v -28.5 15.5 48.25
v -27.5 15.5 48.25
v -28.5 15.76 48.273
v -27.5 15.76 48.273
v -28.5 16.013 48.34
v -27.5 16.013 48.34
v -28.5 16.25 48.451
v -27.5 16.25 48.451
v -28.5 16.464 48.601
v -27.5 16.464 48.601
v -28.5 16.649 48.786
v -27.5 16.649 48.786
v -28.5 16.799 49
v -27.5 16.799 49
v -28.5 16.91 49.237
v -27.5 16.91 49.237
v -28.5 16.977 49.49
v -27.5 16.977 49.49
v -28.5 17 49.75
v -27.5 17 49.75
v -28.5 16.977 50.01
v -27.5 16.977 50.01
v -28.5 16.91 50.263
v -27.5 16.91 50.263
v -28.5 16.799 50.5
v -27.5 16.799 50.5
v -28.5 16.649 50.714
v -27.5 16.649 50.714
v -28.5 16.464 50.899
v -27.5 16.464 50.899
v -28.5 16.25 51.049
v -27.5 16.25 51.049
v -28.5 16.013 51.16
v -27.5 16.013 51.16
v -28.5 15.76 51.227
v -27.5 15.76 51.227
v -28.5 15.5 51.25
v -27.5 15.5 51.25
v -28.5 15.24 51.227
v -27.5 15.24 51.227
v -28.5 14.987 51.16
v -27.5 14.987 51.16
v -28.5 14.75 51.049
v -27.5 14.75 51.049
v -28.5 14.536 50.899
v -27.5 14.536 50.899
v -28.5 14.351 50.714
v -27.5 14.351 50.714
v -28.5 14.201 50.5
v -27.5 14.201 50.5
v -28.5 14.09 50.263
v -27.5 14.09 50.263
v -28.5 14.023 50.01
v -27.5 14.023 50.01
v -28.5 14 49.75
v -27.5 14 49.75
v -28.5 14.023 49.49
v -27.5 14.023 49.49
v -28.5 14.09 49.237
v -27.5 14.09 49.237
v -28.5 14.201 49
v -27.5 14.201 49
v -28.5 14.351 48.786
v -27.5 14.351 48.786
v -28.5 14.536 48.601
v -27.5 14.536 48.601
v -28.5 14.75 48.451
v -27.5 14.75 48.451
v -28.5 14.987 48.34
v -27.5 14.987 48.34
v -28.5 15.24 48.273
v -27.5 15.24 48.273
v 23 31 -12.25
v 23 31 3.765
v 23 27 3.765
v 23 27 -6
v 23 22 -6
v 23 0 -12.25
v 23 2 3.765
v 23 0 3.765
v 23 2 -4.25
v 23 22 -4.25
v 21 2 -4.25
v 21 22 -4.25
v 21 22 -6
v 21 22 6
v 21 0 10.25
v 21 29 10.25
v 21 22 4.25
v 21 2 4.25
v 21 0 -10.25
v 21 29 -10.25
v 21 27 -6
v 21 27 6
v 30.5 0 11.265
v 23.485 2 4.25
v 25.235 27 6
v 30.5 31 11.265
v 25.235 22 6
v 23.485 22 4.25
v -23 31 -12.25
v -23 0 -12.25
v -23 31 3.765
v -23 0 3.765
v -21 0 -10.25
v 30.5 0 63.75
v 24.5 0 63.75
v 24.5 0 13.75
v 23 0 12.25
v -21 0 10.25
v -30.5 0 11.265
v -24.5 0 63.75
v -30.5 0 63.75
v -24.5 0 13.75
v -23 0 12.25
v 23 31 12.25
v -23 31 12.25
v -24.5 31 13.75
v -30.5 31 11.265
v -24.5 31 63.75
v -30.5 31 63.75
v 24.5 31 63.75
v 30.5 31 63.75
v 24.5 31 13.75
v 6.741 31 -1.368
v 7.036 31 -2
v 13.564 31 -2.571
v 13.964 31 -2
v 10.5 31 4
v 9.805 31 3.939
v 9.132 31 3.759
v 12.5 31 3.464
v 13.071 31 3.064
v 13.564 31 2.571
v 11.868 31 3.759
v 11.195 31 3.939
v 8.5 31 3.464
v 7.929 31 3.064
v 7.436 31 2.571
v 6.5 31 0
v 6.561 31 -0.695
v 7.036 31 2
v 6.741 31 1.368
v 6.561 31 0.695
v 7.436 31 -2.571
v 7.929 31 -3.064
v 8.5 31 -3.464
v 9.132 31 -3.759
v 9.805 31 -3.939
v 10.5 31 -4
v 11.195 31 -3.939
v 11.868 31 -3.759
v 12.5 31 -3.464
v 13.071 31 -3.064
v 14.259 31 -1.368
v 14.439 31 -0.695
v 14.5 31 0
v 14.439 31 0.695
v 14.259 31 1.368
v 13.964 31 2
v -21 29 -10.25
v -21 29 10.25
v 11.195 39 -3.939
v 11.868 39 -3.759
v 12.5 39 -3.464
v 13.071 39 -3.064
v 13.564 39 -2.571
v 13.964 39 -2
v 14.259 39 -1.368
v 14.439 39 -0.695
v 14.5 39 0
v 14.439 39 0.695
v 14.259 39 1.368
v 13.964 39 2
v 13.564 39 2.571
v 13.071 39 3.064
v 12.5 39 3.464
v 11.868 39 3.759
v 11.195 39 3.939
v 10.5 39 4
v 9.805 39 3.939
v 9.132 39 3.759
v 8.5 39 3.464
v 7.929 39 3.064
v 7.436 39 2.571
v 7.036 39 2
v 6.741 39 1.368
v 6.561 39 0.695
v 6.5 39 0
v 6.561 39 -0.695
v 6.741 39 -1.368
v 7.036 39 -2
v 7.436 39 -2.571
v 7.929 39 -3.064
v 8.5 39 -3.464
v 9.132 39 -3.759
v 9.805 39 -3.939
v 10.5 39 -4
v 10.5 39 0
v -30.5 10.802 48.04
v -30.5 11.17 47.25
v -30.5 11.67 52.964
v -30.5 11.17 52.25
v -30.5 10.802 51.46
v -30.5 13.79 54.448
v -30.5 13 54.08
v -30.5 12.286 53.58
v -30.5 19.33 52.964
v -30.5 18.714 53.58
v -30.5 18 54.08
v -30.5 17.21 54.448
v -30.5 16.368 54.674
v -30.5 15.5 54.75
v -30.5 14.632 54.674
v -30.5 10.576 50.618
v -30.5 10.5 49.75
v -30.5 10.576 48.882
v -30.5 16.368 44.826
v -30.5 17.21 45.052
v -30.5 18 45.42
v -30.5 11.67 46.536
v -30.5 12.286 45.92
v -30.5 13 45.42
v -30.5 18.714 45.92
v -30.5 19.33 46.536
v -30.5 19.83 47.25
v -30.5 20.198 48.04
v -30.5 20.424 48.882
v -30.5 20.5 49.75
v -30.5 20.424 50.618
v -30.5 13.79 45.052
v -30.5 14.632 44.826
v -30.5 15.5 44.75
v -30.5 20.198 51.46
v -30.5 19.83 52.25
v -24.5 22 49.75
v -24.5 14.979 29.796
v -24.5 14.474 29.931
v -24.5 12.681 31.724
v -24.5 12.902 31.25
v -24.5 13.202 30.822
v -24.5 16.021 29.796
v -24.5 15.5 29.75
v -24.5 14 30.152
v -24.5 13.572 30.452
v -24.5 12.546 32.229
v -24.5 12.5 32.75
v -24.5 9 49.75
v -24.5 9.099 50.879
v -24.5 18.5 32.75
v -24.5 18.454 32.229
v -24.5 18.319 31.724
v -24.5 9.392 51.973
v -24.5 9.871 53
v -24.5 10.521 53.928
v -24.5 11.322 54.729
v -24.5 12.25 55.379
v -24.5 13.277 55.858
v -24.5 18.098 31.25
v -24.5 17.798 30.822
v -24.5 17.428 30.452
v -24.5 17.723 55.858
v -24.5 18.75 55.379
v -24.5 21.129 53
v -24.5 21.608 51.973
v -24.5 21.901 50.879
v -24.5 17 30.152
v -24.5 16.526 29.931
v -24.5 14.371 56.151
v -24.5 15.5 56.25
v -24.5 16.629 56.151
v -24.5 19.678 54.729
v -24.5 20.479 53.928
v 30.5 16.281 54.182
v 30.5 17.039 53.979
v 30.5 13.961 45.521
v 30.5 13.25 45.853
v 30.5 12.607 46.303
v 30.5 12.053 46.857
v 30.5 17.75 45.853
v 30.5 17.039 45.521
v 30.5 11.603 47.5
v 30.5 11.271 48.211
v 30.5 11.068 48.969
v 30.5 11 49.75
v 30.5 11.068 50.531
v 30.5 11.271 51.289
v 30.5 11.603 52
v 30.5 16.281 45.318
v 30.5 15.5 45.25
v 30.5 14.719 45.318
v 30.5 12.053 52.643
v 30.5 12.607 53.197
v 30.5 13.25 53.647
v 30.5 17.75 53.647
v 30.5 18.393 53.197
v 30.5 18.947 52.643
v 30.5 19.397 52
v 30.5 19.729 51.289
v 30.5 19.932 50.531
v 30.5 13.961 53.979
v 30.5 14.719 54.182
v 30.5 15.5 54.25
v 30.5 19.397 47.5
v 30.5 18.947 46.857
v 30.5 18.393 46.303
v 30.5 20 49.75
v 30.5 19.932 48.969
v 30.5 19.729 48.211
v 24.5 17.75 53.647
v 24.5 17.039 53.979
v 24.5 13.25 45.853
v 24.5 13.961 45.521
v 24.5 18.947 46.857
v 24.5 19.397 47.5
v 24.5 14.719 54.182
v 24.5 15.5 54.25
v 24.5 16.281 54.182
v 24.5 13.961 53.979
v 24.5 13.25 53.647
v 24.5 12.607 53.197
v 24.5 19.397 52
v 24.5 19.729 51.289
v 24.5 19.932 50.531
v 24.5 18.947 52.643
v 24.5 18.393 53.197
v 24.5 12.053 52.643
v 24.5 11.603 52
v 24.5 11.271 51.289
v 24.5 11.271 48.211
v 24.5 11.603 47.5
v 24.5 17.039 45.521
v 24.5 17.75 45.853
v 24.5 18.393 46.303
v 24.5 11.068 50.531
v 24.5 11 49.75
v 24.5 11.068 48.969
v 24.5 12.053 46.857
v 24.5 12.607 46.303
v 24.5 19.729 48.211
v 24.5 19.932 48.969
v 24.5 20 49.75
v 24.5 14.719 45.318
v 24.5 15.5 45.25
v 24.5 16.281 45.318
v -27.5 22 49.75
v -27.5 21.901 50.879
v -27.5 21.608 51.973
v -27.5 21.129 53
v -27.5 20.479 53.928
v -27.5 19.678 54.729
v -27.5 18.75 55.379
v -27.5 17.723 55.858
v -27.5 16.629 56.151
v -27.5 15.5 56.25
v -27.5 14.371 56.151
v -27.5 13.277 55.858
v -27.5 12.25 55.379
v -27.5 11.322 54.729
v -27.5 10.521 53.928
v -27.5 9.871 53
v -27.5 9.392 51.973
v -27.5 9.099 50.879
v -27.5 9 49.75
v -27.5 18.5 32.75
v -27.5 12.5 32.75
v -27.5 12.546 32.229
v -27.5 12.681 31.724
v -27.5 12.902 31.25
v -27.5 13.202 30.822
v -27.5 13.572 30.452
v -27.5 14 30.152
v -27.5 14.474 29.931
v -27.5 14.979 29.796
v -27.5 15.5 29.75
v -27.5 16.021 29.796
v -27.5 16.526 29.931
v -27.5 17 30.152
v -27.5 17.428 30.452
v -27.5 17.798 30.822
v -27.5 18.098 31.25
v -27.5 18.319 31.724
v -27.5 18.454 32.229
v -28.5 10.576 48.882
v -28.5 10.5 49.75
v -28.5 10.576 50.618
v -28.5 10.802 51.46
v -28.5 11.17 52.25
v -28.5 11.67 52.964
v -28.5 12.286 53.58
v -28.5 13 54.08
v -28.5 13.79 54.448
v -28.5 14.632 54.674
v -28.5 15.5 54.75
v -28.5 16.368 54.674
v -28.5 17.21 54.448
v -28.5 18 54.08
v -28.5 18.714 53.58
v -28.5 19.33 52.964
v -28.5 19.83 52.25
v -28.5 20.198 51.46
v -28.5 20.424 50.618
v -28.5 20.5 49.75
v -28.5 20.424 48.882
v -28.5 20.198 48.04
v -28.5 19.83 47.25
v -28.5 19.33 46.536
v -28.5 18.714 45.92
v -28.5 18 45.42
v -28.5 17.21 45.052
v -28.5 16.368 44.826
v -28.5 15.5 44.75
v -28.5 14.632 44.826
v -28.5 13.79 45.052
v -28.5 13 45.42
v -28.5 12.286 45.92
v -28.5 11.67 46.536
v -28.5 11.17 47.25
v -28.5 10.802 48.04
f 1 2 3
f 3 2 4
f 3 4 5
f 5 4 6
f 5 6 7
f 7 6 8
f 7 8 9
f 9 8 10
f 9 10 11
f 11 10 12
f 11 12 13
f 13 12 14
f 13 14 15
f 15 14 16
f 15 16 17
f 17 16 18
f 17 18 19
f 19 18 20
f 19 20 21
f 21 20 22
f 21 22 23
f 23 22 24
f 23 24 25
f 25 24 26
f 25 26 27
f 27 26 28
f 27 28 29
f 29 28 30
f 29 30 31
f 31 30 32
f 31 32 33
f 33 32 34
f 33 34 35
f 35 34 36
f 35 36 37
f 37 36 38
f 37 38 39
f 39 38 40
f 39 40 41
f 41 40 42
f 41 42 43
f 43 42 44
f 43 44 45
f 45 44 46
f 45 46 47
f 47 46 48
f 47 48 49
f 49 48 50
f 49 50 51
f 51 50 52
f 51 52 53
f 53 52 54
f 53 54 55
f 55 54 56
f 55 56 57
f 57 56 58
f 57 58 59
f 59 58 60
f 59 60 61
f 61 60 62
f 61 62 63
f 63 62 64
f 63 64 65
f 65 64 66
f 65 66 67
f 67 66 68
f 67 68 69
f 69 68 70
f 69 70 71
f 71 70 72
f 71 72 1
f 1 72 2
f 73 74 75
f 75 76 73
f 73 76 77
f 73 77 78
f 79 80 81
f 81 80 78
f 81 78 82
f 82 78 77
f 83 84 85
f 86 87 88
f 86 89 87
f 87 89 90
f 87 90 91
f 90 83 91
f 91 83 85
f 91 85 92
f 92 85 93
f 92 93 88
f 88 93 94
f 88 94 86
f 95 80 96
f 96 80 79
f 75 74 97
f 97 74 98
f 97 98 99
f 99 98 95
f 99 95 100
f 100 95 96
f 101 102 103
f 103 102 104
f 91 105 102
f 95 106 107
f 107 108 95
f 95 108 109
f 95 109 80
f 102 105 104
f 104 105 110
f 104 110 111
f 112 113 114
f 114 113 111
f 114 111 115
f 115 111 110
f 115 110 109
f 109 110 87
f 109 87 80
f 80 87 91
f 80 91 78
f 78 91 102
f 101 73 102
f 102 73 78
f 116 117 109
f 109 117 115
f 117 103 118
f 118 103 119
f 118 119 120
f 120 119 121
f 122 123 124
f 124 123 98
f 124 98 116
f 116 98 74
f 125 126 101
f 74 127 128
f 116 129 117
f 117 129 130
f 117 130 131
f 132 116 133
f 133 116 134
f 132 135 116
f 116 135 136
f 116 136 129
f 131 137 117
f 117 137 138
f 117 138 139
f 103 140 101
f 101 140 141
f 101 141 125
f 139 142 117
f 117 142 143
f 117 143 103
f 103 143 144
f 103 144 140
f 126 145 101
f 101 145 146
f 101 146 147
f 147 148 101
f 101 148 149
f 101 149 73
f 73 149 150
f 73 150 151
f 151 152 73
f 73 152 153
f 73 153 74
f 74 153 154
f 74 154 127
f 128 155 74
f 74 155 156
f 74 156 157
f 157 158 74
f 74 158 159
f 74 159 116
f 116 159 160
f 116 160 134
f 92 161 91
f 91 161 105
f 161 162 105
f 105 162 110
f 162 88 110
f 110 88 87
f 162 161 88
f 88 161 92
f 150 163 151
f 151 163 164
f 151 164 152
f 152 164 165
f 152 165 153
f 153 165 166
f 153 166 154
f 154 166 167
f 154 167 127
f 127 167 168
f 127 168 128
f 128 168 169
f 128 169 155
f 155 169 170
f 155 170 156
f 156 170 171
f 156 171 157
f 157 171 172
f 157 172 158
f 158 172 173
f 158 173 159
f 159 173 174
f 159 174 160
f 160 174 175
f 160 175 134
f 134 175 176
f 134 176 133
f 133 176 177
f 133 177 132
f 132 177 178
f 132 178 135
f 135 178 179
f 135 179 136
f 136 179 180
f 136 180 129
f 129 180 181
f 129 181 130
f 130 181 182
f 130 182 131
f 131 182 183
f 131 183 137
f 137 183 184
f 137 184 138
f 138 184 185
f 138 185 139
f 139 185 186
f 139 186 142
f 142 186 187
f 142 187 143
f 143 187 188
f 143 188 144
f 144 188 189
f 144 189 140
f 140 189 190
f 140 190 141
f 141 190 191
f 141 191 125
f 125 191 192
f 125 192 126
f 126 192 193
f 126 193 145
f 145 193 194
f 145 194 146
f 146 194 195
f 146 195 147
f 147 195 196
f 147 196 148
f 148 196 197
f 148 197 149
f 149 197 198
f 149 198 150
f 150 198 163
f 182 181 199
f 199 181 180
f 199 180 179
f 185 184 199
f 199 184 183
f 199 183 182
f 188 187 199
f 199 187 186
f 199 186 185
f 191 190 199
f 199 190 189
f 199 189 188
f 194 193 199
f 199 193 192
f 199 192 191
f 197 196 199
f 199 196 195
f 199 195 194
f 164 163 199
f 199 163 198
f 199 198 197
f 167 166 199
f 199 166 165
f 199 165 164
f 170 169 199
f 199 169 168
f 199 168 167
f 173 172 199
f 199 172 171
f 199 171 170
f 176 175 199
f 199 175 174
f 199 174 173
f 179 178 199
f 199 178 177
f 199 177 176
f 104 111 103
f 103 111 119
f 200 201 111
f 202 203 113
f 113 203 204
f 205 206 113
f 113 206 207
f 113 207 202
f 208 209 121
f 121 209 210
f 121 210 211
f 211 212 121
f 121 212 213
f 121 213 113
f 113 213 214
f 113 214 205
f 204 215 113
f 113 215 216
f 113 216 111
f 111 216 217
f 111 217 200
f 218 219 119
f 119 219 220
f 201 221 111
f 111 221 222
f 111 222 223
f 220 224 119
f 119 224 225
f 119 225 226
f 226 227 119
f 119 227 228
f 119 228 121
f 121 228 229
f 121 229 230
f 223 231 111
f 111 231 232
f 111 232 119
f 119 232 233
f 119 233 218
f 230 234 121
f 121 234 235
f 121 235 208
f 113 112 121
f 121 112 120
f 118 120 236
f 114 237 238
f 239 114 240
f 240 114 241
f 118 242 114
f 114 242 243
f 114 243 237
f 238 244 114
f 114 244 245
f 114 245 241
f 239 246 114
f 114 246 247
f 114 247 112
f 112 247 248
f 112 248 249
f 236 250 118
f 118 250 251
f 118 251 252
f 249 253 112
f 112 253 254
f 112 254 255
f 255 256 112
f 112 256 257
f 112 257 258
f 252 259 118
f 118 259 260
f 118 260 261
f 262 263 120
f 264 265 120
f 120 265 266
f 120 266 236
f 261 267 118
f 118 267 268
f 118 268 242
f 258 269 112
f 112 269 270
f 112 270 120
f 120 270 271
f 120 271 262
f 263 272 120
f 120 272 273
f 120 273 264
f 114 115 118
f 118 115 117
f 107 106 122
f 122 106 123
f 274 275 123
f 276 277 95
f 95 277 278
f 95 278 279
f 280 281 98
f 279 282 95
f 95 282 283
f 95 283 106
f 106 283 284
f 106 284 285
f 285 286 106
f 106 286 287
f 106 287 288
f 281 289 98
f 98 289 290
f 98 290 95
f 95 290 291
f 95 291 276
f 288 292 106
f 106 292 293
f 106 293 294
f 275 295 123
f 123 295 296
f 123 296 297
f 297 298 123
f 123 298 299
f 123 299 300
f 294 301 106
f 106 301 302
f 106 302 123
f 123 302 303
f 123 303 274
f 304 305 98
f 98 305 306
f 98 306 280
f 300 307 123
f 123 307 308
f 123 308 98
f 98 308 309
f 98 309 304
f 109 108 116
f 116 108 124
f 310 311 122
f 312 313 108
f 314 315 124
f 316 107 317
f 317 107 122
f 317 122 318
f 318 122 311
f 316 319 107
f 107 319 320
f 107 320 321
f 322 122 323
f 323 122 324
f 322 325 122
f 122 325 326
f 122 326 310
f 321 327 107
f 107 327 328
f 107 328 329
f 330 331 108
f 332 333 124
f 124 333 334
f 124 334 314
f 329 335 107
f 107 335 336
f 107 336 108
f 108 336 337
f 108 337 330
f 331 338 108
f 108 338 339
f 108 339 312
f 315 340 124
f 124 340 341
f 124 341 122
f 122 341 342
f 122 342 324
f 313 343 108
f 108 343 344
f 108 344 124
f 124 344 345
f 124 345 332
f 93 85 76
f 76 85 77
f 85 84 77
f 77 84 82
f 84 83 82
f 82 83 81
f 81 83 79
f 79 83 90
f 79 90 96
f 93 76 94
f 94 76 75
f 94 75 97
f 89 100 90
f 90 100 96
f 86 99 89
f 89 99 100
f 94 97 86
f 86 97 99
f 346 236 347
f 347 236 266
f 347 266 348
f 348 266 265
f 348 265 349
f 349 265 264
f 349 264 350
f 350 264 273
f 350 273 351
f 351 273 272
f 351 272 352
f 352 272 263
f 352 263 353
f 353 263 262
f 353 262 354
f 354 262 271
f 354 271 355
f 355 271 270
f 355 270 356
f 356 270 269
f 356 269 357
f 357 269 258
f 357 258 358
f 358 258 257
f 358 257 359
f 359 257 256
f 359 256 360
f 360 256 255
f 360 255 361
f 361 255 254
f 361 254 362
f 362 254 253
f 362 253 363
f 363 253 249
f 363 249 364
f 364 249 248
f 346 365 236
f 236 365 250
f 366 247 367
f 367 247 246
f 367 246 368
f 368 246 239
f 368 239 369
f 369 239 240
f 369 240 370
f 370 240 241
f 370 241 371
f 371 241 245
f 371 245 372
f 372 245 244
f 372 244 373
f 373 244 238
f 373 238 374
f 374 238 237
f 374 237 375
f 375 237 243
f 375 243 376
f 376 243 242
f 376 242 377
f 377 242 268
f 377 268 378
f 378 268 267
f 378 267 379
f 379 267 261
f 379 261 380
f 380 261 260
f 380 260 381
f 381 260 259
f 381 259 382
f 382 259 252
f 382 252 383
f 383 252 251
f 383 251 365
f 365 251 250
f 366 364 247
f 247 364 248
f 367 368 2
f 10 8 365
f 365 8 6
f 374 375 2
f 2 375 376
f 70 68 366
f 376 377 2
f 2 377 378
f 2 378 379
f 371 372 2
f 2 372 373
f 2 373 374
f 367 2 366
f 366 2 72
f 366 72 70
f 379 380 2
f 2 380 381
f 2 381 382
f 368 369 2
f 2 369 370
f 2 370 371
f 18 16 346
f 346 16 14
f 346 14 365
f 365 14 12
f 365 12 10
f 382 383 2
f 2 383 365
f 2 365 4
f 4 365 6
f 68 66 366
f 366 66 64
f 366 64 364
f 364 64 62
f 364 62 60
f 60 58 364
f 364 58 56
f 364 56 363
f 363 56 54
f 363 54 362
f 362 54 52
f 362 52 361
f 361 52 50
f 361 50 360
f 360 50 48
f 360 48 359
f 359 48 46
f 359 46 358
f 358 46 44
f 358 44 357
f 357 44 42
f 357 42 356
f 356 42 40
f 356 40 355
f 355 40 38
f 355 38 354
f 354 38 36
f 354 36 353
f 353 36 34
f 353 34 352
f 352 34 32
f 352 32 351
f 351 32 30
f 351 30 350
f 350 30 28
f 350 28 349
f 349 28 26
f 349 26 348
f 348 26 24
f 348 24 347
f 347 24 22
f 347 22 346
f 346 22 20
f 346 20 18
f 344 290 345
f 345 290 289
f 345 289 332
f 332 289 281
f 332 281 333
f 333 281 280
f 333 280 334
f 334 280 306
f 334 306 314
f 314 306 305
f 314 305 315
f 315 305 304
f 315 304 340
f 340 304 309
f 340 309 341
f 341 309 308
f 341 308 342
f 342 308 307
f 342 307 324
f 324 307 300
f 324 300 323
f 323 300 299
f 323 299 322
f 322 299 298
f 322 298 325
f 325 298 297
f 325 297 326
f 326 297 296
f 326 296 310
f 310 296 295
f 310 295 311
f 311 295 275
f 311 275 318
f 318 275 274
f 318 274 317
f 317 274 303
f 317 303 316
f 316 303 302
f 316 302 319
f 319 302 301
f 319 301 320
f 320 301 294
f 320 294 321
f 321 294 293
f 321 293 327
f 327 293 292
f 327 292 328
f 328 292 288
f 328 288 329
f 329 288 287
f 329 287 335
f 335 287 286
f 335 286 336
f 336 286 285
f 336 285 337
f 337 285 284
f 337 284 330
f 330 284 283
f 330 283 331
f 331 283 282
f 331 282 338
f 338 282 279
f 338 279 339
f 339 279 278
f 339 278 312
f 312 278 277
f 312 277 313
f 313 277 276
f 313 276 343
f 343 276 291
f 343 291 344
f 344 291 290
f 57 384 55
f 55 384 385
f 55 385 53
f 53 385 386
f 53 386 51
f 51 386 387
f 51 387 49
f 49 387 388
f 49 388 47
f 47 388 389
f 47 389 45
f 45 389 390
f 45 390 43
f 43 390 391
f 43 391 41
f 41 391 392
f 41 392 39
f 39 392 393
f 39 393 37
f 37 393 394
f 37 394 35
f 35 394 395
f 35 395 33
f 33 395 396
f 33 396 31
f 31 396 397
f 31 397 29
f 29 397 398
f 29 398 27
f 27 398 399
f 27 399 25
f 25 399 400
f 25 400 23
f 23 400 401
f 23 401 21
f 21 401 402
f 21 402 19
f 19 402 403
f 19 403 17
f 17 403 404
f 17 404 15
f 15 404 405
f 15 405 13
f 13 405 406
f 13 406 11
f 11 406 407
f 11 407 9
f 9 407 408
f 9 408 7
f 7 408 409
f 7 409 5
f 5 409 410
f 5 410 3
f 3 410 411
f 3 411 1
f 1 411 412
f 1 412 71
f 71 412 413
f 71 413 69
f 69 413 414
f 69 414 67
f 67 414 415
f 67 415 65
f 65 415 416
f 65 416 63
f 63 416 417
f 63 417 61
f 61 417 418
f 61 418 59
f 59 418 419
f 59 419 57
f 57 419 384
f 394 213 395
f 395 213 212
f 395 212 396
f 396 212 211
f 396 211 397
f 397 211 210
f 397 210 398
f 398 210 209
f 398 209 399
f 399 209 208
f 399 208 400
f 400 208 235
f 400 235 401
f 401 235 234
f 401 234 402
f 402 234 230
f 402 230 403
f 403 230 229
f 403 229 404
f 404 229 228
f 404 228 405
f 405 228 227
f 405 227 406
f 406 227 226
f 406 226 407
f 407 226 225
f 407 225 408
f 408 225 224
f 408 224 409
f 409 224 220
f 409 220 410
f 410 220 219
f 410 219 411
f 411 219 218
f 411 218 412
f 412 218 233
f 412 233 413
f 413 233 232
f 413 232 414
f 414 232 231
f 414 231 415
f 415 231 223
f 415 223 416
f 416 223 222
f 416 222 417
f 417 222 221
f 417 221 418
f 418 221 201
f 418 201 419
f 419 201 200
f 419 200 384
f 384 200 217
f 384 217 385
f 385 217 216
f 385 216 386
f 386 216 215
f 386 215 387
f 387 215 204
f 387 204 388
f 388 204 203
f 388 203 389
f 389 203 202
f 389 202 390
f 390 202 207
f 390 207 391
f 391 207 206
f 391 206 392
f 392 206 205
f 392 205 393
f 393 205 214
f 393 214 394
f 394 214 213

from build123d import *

# Parameters (mm, degrees)
SKETCH1_W               = 46
SKETCH1_H               = 24.5
BODY_DEPTH              = 31
SKETCH3_W               = 42
SKETCH3_H               = 20.5
SERVO_HOLE_DEPTH        = 29
SKETCH6_R               = 4
BOSS_EXTRUDE3_DEPTH     = 8
BOSS_EXTRUDE4_DEPTH     = 31
CUT_EXTRUDE3_DEPTH      = 2
CUT_EXTRUDE3_DEPTH_BACK = 29
CUT_EXTRUDE4_DEPTH      = 3
CUT_EXTRUDE5_DEPTH      = 93.790422458
CUT_EXTRUDE5_DEPTH_BACK = 93.790422458
SKETCH11_R              = 1.5
SKETCH12_R              = 4.5
CUT_EXTRUDE6_DEPTH      = 6
SKETCH13_R              = 5
CUT_EXTRUDE7_DEPTH      = 2


with BuildPart() as part:
    # Sketch1 → Body (new body)
    with BuildSketch(Plane(origin=(0, 0, 0), x_dir=(1, 0, 0), z_dir=(0, 1, 0))):
        Rectangle(SKETCH1_W, SKETCH1_H)
    extrude(amount=BODY_DEPTH)

    # Sketch3 → Servo Hole (cut)
    with BuildSketch(Plane(origin=(0, 0, 0), x_dir=(1, 0, 0), z_dir=(0, 1, 0))):
        Rectangle(SKETCH3_W, SKETCH3_H)
    extrude(amount=SERVO_HOLE_DEPTH, mode=Mode.SUBTRACT)

    # Sketch6 → Boss-Extrude3 (add)
    with BuildSketch(Plane(origin=(0, 31, 0), x_dir=(1, 0, 0), z_dir=(0, 1, 0))):
        with Locations(Location((10.5, 0, 0), (0, 0, 90))):
            Circle(SKETCH6_R)
    extrude(amount=BOSS_EXTRUDE3_DEPTH)

    # Sketch8 → Boss-Extrude4 (add)
    with BuildSketch(Plane.XZ):
        Polygon((-23, 12.25), (-24.5, 13.75), (-24.5, 63.75), (-30.5, 63.75), (-30.5, 11.264718626), (-23, 3.764718626), align=None)
        Polygon((24.5, 63.75), (24.5, 13.75), (23, 12.25), (23, 3.764718626), (30.5, 11.264718626), (30.5, 63.75), align=None)
    extrude(amount=-BOSS_EXTRUDE4_DEPTH)

    # Sketch5 → Cut-Extrude3 (cut, two sides: drawn at the far end of the back side and taken through both)
    with BuildSketch(Plane.ZY.offset(-23).offset(-CUT_EXTRUDE3_DEPTH_BACK)):
        Polygon((-6, 27), (6, 27), (6, 22), (4.25, 22), (4.25, 2), (-4.25, 2), (-4.25, 22), (-6, 22), align=None)
    extrude(amount=CUT_EXTRUDE3_DEPTH + CUT_EXTRUDE3_DEPTH_BACK, mode=Mode.SUBTRACT)

    # Sketch10 → Cut-Extrude4 (cut)
    with BuildSketch(Plane(origin=(-24.5, 0, 0), x_dir=(0, 0, -1), z_dir=(1, 0, 0))):
        with BuildLine():
            Line((-32.75, 12.5), (-49.75, 9))
            ThreePointArc((-49.75, 9), (-56.25, 15.5), (-49.75, 22))
            Line((-49.75, 22), (-32.75, 18.5))
            ThreePointArc((-32.75, 18.5), (-29.75, 15.5), (-32.75, 12.5))
        make_face()
    extrude(amount=-CUT_EXTRUDE4_DEPTH, mode=Mode.SUBTRACT)

    # Sketch11 → Cut-Extrude5 (cut, two sides: drawn at the far end of the back side and taken through both)
    with BuildSketch(Plane(origin=(-24.5, 0, 0), x_dir=(0, 0, -1), z_dir=(1, 0, 0)).offset(-CUT_EXTRUDE5_DEPTH_BACK)):
        with Locations((-49.75, 15.5)):
            Circle(SKETCH11_R)
    extrude(amount=CUT_EXTRUDE5_DEPTH + CUT_EXTRUDE5_DEPTH_BACK, mode=Mode.SUBTRACT)

    # Sketch12 → Cut-Extrude6 (cut)
    with BuildSketch(Plane(origin=(30.5, 0, 0), x_dir=(0, 0, -1), z_dir=(1, 0, 0))):
        with Locations((-49.75, 15.5)):
            Circle(SKETCH12_R)
    extrude(amount=-CUT_EXTRUDE6_DEPTH, mode=Mode.SUBTRACT)

    # Sketch13 → Cut-Extrude7 (cut)
    with BuildSketch(Plane.ZY.offset(30.5)):
        with Locations((49.75, 15.5)):
            Circle(SKETCH13_R)
    extrude(amount=-CUT_EXTRUDE7_DEPTH, mode=Mode.SUBTRACT)


solid = part.part
